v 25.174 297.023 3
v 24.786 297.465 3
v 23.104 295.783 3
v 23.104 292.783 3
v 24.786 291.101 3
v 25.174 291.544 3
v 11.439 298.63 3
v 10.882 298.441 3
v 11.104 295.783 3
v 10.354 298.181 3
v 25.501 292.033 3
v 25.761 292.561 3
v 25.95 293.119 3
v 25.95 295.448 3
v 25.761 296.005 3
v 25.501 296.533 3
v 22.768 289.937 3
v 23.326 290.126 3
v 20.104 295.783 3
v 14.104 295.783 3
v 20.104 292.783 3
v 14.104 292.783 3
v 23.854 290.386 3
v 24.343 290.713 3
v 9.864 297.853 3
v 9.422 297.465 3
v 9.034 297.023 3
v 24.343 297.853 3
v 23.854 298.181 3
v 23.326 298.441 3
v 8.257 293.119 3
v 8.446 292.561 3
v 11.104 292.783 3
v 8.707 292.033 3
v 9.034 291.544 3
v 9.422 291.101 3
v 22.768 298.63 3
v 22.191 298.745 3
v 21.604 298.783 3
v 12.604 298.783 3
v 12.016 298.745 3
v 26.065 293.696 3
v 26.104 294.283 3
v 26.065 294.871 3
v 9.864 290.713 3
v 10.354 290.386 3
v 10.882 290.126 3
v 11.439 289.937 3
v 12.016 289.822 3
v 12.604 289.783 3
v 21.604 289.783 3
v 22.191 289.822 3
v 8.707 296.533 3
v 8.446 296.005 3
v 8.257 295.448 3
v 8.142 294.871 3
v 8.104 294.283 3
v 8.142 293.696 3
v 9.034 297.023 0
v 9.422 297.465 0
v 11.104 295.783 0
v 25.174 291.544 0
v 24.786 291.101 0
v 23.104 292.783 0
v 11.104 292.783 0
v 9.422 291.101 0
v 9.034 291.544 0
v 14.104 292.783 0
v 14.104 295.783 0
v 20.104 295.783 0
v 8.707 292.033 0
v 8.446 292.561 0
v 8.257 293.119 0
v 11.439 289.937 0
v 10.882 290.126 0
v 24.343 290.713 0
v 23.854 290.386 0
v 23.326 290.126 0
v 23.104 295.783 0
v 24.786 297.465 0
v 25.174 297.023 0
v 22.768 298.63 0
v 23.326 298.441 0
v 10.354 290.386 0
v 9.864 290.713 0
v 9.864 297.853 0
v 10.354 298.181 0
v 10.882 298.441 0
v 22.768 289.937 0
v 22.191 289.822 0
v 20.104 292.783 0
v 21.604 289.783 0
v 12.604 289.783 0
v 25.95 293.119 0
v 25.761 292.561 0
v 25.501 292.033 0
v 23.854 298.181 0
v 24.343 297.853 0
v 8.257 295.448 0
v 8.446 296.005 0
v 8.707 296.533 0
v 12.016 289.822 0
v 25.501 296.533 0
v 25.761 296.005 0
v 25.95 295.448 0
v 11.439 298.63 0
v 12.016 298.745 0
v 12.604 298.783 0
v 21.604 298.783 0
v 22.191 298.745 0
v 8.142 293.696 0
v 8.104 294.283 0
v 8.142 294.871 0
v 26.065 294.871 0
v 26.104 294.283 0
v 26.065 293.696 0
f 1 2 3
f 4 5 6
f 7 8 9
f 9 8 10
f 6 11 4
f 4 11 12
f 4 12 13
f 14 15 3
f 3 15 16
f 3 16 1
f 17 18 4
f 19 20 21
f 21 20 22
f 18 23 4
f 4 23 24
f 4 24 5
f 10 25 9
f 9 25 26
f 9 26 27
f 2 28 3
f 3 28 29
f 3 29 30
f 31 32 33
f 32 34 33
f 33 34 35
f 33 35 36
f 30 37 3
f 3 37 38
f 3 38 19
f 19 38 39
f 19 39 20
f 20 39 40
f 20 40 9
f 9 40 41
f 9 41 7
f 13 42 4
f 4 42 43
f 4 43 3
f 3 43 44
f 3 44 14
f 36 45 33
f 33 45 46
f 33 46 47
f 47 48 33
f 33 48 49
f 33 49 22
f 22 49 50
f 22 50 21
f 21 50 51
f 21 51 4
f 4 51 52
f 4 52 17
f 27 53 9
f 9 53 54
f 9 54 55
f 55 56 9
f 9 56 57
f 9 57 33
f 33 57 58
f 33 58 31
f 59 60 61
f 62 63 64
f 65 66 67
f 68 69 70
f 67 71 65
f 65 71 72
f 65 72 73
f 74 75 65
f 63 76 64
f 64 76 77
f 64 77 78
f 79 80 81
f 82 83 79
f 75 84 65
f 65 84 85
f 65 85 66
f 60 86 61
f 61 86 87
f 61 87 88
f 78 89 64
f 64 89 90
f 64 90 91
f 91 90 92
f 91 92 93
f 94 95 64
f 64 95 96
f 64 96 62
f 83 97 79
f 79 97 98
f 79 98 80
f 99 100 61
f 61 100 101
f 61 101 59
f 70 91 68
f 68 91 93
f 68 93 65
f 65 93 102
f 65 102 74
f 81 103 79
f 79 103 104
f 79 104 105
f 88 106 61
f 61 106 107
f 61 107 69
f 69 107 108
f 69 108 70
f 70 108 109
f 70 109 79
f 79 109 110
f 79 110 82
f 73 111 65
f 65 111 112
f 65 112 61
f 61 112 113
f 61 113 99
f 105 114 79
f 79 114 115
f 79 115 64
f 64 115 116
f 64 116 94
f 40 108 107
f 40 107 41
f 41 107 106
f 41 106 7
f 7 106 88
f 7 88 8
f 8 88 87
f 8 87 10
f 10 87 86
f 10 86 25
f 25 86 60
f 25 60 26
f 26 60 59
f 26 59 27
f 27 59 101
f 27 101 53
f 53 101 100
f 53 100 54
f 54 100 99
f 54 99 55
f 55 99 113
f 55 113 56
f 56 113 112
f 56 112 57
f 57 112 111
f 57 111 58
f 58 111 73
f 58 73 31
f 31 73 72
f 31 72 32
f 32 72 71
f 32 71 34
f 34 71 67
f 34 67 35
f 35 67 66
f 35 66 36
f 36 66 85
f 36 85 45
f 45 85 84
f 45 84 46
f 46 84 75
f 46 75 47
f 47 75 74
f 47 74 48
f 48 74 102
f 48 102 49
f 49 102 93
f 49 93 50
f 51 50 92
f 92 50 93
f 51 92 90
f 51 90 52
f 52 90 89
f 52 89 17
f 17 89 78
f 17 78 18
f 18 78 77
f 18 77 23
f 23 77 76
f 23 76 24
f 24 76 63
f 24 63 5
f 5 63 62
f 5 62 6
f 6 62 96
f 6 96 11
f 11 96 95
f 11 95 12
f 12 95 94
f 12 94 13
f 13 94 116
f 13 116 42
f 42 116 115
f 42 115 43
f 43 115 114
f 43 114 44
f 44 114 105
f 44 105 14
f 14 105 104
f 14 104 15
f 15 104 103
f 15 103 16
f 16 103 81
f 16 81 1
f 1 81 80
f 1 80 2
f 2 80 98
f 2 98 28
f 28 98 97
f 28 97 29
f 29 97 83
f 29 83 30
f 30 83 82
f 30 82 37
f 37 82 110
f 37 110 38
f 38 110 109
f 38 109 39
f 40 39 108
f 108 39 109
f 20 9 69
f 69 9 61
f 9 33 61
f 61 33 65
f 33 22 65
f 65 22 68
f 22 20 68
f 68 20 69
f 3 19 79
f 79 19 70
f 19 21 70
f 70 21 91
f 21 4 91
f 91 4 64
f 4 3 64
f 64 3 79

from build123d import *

# Parameters (mm, degrees)
MODEL_W                 = 3
MODEL_H                 = 3
SALIENTE_EXTRUIR1_DEPTH = 3


with BuildPart() as part:
    # Model → Saliente-Extruir1 (new body)
    with BuildSketch(Plane.XY):
        with BuildLine():
            Line((12.603795093, 298.783404974), (21.603795093, 298.783404974))
            ThreePointArc((21.603795093, 298.783404974), (26.103795093, 294.283404974), (21.603795093, 289.783404974))
            Line((21.603795093, 289.783404974), (12.603795093, 289.783404974))
            ThreePointArc((12.603795093, 289.783404974), (8.103795093, 294.283404974), (12.603795093, 298.783404974))
        make_face()
        with Locations((12.603795093, 294.283404974)):
            Rectangle(MODEL_W, MODEL_H, mode=Mode.SUBTRACT)
        with Locations((21.603795093, 294.283404974)):
            Rectangle(MODEL_W, MODEL_H, mode=Mode.SUBTRACT)
    extrude(amount=SALIENTE_EXTRUIR1_DEPTH)


solid = part.part
